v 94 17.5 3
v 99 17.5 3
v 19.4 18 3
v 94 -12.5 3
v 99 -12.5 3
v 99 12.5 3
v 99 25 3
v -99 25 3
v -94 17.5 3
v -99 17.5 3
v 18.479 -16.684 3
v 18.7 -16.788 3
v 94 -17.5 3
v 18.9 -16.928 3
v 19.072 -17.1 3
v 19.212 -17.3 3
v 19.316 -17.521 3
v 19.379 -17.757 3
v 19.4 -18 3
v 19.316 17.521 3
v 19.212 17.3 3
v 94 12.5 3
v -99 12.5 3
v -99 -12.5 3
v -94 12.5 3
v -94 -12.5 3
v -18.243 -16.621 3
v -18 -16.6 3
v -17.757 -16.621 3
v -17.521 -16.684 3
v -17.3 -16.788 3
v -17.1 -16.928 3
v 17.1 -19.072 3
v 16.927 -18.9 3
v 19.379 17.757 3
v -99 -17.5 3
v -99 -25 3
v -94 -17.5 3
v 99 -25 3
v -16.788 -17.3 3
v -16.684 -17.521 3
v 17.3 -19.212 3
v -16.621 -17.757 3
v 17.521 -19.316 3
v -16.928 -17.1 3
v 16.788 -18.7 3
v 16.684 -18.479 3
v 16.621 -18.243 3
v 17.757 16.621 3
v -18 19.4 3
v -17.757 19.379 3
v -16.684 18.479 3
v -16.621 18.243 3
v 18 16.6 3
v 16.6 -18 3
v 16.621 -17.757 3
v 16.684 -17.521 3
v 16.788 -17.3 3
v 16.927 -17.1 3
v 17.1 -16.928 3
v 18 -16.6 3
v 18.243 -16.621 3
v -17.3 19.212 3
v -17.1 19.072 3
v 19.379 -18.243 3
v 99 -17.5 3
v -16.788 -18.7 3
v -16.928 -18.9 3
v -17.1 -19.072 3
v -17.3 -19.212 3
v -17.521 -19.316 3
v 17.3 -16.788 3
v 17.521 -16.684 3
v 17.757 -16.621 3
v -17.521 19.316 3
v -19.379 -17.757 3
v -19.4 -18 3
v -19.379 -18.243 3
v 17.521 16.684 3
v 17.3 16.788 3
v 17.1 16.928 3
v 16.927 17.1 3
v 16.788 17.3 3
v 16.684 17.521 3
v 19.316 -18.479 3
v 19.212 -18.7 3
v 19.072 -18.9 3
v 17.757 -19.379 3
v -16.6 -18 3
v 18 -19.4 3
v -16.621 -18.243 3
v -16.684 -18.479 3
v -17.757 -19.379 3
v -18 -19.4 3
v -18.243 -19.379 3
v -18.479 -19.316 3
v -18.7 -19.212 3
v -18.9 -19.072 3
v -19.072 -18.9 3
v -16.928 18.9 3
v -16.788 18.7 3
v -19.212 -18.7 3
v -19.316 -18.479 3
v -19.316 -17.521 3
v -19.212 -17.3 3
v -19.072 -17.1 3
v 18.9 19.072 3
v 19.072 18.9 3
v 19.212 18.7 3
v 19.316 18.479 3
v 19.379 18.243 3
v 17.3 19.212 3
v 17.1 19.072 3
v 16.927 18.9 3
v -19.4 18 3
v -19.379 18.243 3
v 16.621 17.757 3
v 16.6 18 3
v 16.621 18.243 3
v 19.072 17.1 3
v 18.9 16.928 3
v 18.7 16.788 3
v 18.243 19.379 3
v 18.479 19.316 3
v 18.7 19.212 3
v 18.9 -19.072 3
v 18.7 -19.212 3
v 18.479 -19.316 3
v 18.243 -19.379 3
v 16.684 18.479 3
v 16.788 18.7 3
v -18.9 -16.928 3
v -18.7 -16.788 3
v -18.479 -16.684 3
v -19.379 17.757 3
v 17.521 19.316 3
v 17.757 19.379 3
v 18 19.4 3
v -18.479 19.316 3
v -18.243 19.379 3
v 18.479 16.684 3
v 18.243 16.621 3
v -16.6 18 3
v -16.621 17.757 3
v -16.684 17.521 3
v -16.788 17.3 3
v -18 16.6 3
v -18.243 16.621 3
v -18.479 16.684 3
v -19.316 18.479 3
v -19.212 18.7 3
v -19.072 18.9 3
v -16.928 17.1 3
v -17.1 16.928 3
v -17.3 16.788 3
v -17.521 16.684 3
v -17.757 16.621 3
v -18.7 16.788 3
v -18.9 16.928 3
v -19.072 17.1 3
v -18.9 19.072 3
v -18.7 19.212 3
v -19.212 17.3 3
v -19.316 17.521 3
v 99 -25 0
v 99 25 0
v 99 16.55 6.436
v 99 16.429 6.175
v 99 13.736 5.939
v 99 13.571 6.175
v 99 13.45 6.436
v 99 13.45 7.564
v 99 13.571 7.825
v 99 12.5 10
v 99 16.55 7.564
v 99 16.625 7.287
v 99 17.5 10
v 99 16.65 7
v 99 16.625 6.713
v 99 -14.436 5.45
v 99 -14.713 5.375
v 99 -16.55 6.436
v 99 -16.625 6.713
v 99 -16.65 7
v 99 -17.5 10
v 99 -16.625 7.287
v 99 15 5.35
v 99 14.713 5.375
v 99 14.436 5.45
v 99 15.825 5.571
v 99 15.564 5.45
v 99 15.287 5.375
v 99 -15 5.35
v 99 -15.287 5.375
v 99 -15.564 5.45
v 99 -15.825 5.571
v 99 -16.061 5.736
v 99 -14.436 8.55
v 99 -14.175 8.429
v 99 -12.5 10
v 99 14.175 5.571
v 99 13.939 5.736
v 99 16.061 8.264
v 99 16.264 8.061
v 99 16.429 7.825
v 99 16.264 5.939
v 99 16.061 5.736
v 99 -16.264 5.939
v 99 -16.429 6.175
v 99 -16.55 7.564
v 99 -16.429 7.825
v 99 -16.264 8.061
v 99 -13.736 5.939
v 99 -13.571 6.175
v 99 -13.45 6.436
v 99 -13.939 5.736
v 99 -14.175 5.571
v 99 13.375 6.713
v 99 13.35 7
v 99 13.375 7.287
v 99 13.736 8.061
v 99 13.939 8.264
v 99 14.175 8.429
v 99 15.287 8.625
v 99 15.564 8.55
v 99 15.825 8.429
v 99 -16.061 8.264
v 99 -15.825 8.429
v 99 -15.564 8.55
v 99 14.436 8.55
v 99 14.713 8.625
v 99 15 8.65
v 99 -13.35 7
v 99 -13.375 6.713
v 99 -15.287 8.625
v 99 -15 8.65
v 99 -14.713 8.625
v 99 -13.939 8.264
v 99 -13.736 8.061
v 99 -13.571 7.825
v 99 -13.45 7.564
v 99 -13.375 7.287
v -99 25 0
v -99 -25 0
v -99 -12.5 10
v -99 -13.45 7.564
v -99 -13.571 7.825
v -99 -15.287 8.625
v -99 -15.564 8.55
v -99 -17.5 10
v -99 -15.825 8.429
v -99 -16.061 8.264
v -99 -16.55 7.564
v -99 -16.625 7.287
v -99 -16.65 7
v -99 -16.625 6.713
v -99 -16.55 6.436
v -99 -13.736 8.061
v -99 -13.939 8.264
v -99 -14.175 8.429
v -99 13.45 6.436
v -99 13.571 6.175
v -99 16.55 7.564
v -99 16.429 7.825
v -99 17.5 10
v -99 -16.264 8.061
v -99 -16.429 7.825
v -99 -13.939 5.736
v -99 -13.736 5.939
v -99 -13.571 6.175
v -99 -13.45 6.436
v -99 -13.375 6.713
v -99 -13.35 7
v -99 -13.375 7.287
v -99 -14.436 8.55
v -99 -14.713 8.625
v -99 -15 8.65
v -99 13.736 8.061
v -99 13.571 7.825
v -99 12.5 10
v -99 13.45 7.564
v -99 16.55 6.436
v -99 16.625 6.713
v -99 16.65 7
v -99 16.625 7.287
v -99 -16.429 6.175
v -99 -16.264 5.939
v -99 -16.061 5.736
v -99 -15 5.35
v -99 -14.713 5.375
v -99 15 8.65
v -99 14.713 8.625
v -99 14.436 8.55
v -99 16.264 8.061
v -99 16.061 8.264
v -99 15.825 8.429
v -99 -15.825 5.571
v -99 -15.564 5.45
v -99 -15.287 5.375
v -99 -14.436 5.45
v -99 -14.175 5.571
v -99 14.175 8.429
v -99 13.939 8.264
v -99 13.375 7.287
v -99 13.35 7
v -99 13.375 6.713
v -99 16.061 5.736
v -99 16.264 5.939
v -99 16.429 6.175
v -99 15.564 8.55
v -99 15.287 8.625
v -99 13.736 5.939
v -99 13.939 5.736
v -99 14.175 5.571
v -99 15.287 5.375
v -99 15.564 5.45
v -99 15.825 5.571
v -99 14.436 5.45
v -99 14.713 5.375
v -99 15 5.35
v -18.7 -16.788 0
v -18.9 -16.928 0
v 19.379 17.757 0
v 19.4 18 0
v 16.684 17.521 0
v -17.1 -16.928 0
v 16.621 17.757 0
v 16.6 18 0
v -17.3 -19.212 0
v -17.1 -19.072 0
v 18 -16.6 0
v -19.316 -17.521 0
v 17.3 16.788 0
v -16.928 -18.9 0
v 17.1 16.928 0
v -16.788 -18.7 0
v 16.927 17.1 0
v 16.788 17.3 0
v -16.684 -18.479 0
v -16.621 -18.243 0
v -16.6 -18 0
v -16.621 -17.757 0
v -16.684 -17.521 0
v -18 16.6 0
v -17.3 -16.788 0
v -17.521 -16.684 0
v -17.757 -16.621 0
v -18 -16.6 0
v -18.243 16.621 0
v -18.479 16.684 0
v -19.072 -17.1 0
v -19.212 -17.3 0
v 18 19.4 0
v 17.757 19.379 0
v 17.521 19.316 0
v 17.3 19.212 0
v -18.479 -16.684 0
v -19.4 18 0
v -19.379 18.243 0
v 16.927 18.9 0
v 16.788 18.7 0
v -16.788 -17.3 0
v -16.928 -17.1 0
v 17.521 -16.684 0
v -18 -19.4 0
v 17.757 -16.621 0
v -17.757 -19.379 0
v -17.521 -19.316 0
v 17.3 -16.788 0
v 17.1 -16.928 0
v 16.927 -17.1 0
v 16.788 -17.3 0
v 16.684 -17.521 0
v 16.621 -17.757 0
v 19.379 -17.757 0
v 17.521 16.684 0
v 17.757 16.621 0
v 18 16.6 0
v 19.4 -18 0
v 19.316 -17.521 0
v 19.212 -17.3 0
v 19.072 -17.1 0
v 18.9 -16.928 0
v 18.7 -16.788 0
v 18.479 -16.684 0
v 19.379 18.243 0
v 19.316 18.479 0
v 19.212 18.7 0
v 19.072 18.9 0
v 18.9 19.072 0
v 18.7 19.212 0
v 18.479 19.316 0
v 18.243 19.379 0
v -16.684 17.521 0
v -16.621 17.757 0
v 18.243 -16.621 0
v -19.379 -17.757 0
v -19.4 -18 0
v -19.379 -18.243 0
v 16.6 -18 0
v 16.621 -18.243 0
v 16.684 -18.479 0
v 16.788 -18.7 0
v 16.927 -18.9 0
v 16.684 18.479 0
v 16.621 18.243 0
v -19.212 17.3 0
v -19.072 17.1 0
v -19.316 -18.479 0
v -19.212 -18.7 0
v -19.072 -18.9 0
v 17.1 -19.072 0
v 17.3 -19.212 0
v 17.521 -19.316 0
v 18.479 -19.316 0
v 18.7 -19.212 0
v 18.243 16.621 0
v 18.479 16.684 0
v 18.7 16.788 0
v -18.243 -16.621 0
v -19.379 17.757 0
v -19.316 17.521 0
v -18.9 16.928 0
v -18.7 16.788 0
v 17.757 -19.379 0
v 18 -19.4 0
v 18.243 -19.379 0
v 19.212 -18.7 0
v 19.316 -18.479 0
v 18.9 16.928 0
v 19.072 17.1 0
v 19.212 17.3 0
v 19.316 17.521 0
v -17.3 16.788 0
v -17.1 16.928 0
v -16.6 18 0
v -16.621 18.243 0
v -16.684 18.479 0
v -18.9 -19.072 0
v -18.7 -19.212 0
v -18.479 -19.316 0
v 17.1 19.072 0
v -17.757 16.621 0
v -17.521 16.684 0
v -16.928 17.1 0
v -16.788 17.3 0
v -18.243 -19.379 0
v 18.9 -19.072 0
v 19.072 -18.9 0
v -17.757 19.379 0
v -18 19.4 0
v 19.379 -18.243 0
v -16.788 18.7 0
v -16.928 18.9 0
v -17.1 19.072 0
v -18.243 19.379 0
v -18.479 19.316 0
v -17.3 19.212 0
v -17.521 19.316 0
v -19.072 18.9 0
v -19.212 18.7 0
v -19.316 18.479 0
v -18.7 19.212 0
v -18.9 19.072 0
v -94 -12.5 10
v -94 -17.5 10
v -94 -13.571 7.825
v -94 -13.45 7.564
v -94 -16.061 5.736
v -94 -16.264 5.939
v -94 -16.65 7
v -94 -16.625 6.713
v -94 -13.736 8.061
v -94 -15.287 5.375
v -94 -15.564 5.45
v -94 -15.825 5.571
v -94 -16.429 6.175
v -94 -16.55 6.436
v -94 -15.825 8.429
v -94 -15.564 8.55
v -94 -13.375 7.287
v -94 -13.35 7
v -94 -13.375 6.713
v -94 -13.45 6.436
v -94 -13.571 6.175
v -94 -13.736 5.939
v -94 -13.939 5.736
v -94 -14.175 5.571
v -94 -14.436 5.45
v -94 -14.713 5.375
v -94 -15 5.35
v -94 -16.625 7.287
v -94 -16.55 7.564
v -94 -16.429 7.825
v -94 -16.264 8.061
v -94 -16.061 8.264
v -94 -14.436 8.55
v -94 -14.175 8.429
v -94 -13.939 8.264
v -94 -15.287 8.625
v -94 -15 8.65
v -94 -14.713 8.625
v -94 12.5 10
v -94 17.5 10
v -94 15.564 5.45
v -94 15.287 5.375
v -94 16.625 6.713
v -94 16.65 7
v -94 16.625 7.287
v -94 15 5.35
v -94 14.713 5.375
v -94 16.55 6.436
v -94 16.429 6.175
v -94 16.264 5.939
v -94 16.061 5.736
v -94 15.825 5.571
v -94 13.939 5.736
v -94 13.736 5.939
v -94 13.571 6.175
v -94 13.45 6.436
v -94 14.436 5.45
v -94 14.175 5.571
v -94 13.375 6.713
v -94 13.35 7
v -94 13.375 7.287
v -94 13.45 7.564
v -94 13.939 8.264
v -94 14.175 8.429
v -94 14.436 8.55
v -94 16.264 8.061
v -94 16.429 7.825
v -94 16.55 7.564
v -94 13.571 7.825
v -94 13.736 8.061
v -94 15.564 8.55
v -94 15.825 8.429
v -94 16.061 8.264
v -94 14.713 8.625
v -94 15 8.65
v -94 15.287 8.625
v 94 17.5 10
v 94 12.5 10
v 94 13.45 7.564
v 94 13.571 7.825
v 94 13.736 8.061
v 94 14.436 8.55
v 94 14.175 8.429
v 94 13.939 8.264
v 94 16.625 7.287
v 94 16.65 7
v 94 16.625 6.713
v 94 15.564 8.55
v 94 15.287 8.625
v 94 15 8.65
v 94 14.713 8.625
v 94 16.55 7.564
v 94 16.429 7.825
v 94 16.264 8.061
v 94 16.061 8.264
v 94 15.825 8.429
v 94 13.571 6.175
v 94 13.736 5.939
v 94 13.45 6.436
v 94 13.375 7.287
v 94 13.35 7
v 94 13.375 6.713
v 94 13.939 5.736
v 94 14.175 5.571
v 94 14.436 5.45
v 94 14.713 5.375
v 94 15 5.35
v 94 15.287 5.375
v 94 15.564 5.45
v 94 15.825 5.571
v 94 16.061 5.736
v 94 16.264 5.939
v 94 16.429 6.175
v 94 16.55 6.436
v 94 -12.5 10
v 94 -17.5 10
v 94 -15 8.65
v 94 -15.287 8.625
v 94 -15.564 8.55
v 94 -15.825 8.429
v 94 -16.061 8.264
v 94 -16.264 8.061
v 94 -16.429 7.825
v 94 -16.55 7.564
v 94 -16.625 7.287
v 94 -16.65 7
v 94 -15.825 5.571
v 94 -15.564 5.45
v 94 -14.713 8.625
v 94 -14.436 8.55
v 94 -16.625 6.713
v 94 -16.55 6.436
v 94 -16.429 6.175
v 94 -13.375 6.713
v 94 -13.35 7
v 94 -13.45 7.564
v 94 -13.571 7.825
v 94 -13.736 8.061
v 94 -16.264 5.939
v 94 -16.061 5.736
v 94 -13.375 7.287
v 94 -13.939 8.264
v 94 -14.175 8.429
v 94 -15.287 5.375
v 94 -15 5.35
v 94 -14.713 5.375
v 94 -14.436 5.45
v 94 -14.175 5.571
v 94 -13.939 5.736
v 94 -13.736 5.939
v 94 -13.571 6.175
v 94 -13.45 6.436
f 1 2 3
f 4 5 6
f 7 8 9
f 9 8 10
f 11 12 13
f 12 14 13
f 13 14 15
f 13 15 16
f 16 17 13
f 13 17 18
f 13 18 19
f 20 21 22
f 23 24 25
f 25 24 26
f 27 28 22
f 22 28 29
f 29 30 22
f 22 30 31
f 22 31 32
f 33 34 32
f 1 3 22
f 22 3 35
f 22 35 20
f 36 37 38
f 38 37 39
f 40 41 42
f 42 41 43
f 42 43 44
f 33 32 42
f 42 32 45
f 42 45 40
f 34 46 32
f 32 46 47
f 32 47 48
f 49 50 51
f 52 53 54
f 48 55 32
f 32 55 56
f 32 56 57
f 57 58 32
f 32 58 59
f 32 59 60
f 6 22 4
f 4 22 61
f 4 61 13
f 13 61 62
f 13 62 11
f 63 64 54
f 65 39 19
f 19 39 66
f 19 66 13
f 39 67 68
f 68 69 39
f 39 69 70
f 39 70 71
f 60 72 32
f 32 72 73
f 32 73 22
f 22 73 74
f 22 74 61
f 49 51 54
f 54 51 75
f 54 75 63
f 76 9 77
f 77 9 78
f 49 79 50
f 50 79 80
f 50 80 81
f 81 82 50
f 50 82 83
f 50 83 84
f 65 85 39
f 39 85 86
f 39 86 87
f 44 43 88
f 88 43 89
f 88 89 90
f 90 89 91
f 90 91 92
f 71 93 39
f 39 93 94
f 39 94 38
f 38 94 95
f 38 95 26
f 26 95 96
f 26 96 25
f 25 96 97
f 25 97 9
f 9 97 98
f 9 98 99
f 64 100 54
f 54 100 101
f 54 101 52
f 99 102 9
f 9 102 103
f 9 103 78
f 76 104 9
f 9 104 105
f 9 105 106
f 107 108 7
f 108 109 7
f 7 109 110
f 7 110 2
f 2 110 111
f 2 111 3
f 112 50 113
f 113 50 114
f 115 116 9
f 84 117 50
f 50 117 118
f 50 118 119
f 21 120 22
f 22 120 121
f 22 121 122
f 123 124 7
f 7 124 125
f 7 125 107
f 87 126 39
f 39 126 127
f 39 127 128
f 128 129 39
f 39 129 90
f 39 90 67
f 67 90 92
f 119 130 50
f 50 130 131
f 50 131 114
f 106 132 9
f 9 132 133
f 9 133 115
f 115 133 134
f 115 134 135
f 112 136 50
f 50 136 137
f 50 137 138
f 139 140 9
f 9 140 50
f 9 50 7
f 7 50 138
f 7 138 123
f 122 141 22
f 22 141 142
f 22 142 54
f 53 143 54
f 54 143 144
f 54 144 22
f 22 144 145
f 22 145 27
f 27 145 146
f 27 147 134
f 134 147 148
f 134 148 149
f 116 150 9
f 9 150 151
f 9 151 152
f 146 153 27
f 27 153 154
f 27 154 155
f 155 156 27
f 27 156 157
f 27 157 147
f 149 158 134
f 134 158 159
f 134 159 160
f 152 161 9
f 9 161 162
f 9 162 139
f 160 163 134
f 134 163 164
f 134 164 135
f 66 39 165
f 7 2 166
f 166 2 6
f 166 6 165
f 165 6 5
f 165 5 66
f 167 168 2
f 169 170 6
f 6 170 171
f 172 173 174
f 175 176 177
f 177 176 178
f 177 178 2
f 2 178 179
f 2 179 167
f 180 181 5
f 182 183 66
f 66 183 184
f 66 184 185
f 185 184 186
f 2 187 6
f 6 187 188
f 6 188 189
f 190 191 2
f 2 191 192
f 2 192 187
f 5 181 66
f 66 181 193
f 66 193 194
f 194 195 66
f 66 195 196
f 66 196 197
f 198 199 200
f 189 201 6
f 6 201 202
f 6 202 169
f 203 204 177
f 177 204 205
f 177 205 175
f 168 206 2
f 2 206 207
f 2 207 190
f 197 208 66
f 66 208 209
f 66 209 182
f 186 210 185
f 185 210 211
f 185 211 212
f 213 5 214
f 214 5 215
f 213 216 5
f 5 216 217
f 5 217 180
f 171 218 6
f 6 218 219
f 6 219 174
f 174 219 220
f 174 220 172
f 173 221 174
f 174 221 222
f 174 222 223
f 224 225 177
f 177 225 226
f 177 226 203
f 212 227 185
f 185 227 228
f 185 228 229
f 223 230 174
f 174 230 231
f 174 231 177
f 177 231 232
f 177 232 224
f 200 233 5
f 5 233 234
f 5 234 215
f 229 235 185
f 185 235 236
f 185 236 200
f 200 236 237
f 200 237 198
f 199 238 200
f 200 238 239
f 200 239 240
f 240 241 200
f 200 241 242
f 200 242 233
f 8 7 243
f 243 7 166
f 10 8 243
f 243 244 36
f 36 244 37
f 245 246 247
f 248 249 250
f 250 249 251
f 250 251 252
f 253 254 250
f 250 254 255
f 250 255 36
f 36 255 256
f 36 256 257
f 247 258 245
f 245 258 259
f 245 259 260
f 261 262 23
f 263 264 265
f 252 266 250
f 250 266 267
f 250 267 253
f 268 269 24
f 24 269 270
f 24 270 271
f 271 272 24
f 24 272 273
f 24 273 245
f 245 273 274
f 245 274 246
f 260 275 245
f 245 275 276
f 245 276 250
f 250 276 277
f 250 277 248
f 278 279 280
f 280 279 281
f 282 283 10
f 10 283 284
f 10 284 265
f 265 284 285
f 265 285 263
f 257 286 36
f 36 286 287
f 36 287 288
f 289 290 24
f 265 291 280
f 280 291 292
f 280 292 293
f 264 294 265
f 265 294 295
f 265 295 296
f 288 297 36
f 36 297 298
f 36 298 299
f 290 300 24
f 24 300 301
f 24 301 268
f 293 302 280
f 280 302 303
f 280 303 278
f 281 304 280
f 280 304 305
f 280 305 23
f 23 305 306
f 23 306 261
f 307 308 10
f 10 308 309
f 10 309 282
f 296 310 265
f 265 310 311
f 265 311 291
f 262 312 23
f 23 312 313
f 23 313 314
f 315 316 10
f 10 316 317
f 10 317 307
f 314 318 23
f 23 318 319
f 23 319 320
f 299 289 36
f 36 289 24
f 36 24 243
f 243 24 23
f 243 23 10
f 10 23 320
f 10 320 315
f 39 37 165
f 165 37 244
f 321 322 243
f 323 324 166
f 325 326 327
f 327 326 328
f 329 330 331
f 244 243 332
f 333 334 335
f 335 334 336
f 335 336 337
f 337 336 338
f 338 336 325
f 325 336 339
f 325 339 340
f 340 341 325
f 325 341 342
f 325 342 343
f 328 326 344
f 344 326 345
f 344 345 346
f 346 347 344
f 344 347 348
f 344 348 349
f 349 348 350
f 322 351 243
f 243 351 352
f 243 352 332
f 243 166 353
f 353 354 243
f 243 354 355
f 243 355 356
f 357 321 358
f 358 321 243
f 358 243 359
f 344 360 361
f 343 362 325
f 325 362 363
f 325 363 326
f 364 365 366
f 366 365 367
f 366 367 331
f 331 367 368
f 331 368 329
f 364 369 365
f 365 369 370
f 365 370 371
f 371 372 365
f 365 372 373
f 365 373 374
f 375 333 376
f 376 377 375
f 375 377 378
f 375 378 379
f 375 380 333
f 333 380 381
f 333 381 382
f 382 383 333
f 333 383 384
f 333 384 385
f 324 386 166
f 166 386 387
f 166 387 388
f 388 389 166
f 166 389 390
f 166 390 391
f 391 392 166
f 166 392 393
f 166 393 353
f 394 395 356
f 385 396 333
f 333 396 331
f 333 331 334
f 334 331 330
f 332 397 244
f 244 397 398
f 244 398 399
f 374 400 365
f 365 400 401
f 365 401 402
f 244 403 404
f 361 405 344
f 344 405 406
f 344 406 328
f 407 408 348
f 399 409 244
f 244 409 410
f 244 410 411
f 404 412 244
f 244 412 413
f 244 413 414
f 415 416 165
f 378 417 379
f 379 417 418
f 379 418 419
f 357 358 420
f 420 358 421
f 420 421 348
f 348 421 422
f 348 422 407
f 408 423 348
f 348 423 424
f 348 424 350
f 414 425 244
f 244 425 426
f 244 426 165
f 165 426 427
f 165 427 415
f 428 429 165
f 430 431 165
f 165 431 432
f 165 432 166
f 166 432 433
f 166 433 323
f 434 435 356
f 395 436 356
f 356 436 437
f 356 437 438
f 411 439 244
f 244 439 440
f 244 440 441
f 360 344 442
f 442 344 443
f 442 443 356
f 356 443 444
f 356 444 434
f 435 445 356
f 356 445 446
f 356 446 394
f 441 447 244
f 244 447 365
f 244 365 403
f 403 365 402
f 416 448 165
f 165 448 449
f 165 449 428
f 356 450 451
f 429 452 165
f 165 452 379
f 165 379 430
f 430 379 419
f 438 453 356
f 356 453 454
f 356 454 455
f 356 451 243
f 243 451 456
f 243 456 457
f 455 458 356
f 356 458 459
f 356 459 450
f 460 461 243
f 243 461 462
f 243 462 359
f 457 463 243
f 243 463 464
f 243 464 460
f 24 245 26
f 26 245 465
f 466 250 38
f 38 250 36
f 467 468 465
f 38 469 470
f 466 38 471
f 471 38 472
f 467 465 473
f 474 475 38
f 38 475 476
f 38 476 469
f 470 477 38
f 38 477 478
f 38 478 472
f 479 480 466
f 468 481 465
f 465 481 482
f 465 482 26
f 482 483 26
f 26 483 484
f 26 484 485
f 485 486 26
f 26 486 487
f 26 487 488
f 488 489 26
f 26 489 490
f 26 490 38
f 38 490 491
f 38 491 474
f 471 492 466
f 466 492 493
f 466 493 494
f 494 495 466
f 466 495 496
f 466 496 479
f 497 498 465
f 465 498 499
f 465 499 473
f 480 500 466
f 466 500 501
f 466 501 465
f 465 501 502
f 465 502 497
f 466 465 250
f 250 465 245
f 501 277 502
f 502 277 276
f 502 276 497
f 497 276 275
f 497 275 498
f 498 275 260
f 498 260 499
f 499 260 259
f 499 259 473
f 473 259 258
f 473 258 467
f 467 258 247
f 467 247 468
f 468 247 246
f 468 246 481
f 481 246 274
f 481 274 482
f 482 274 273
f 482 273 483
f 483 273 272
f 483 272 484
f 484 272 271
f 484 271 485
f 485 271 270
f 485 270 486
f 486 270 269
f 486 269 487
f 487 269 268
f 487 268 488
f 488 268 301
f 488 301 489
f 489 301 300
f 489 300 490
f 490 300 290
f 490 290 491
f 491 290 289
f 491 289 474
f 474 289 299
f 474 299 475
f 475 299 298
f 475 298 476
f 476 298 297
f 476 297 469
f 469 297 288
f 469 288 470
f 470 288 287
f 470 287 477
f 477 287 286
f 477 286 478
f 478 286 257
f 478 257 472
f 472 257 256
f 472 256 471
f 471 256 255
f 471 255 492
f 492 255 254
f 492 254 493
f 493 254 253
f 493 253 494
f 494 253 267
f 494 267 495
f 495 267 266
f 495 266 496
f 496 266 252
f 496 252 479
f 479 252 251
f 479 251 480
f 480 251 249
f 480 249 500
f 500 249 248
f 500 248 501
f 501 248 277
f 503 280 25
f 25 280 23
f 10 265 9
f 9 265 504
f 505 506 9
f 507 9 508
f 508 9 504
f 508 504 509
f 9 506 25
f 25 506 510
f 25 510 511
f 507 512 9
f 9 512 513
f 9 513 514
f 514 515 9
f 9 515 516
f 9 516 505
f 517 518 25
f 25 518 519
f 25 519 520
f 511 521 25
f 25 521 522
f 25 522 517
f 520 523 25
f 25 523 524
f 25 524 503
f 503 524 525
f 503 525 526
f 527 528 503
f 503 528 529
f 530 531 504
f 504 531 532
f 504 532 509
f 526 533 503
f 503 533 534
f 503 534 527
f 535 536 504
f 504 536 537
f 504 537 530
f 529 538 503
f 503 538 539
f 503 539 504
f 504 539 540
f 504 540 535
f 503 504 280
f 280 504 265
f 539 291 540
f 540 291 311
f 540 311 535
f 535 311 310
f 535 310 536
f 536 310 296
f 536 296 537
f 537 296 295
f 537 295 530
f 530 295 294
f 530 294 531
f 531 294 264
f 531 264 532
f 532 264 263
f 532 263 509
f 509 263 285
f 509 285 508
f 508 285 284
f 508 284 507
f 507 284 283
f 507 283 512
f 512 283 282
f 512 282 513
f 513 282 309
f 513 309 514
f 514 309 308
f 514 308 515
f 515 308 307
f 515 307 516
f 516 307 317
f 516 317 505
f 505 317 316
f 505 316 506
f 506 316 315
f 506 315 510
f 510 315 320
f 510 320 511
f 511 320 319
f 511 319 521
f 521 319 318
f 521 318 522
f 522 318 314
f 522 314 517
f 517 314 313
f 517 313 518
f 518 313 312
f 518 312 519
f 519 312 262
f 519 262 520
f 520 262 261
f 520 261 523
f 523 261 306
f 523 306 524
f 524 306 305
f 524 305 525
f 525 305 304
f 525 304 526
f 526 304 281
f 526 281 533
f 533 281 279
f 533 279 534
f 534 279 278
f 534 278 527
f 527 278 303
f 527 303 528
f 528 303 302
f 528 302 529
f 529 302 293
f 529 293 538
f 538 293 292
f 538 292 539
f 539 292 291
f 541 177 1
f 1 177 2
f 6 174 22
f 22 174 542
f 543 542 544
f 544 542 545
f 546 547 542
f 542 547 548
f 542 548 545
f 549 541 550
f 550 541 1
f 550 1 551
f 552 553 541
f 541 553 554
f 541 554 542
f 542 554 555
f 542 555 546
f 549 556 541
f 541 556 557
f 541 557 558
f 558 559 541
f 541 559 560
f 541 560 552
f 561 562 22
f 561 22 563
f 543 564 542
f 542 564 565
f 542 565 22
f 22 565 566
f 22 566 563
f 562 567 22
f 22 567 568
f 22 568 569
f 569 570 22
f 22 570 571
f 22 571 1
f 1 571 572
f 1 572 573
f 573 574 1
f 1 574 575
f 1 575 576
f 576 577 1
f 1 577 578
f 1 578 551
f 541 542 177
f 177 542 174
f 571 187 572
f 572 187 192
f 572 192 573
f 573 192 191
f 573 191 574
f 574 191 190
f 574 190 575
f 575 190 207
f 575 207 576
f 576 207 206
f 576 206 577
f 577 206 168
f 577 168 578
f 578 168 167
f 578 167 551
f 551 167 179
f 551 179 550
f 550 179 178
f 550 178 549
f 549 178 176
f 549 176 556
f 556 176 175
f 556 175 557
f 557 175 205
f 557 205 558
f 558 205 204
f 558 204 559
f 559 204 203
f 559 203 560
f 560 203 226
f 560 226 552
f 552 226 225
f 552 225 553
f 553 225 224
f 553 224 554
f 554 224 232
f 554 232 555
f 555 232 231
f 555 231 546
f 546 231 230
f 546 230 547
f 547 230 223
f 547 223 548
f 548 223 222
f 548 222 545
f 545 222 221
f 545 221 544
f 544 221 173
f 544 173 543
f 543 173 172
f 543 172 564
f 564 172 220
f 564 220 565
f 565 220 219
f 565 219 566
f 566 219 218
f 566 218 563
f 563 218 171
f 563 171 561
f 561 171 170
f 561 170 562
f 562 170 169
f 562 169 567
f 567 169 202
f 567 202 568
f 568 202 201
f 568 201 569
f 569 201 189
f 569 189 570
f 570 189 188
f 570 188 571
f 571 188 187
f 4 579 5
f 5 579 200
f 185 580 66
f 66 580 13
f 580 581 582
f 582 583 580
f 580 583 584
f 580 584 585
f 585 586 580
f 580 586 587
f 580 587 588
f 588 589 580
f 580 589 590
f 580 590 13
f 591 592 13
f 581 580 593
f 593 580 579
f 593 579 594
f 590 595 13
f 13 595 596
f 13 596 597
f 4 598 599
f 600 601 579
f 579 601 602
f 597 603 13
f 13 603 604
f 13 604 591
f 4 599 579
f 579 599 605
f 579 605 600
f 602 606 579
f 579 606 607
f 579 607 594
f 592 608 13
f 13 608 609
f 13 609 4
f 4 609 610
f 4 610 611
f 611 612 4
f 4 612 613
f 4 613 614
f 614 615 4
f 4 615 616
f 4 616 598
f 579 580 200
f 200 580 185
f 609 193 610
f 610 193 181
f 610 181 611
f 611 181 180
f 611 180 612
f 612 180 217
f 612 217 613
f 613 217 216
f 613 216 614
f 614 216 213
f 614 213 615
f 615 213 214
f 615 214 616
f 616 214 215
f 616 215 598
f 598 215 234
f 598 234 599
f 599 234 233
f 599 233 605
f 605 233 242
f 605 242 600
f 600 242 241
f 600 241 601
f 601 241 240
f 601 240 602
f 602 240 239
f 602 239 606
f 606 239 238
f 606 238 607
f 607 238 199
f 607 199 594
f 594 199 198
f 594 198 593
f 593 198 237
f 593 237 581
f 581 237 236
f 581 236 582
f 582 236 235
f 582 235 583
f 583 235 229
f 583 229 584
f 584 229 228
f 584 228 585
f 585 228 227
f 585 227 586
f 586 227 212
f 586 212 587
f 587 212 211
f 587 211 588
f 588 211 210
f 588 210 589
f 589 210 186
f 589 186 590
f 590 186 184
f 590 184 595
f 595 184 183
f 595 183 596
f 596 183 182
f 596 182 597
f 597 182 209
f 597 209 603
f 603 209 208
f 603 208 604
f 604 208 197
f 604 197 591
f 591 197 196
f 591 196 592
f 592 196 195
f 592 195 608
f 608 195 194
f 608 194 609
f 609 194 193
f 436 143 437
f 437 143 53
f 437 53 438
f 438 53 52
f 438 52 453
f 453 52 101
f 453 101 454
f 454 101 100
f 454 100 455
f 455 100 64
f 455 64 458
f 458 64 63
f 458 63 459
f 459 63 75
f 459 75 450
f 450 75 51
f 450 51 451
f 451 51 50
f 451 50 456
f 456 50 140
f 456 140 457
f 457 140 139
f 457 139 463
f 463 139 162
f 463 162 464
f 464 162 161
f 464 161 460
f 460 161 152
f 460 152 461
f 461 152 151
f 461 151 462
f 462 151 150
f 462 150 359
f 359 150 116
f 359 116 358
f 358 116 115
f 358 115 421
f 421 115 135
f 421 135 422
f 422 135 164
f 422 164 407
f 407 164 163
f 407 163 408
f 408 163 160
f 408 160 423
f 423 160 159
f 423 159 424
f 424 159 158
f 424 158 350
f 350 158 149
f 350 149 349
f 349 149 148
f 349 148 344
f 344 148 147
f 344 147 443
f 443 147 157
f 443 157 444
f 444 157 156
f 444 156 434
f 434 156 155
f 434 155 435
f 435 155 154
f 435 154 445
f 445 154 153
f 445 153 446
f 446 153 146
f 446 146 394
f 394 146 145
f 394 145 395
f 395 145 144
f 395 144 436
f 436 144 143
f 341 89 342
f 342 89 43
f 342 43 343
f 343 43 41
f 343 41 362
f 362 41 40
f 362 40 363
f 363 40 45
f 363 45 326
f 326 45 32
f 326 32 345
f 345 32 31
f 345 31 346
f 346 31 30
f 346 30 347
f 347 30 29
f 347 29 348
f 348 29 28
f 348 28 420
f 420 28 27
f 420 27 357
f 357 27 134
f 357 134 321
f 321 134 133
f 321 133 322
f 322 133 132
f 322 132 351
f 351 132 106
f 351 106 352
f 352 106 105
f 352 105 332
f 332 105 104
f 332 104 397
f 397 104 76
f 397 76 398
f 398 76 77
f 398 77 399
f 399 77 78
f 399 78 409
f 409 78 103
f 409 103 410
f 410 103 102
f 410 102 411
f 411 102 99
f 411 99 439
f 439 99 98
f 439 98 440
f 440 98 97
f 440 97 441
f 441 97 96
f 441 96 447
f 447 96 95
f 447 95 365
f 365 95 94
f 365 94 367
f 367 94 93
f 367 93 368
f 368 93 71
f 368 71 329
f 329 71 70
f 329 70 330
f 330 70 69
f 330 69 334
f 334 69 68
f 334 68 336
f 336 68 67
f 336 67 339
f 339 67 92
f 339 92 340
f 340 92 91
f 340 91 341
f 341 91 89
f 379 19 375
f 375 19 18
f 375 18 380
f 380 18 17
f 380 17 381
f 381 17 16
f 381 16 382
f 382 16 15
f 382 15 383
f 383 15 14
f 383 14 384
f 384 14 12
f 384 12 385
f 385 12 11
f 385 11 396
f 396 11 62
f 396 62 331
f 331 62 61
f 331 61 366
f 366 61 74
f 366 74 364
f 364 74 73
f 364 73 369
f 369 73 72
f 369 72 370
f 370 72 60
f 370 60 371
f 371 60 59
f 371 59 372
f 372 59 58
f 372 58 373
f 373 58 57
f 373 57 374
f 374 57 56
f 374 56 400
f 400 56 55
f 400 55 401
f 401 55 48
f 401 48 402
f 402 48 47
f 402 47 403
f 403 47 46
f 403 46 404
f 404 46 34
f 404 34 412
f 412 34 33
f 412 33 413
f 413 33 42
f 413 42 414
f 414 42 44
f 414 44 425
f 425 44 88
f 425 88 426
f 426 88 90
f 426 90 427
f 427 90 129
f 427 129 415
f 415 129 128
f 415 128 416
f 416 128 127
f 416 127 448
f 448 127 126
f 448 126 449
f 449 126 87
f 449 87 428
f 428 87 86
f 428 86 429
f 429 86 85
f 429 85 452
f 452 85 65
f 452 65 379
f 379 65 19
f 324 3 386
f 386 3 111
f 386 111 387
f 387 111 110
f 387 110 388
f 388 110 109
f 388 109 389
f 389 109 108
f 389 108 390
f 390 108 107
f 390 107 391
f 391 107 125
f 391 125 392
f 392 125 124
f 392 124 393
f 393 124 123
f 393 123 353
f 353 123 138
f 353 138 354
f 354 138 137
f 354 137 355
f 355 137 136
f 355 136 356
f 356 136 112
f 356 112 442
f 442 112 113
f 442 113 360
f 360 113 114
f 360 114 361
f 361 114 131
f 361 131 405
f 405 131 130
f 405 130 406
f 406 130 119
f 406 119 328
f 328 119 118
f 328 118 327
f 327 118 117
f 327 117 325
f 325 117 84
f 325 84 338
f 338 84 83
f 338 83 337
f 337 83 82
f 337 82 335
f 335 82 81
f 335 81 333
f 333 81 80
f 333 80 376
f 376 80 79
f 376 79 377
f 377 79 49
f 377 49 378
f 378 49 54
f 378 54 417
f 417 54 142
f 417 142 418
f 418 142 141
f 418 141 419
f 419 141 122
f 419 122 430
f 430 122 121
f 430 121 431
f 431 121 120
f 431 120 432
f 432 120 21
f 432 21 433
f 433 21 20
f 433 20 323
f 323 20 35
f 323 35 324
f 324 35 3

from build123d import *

# Parameters (mm, degrees)
SKETCH_1_W          = 198
SKETCH_1_H          = 50
EXTRUDE_1_DEPTH     = 3
SKETCH_4_W          = 10
SKETCH_4_H          = 5
SKETCH_4_R          = 1.65
EXTRUDE_2_DEPTH     = 5
SKETCH_5_W          = 10
SKETCH_5_H          = 5
SKETCH_5_R          = 1.65
EXTRUDE_3_DEPTH     = 5
SKETCH_6_R          = 1.4
CUT_EXTRUDE_3_DEPTH = 3


with BuildPart() as part:
    # 草图1 → 凸台-拉伸1 (new body)
    with BuildSketch(Plane.XY):
        Rectangle(SKETCH_1_W, SKETCH_1_H)
    extrude(amount=EXTRUDE_1_DEPTH)

    # 草图4 → 凸台-拉伸2 (add)
    with BuildSketch(Plane.ZY.offset(99)):
        with Locations((5, 15)):
            Rectangle(SKETCH_4_W, SKETCH_4_H)
        with Locations((7, 15)):
            Circle(SKETCH_4_R, mode=Mode.SUBTRACT)
        with Locations((5, -15)):
            Rectangle(SKETCH_4_W, SKETCH_4_H)
        with Locations((7, -15)):
            Circle(SKETCH_4_R, mode=Mode.SUBTRACT)
    extrude(amount=-EXTRUDE_2_DEPTH)

    # 草图5 → 凸台-拉伸3 (add)
    with BuildSketch(Plane(origin=(99, 0, 0), x_dir=(0, 0, -1), z_dir=(1, 0, 0))):
        with Locations((-5, 15)):
            Rectangle(SKETCH_5_W, SKETCH_5_H)
        with Locations((-7, 15)):
            Circle(SKETCH_5_R, mode=Mode.SUBTRACT)
        with Locations((-5, -15)):
            Rectangle(SKETCH_5_W, SKETCH_5_H)
        with Locations((-7, -15)):
            Circle(SKETCH_5_R, mode=Mode.SUBTRACT)
    extrude(amount=-EXTRUDE_3_DEPTH)

    # 草图6 → 切除-拉伸3 (cut)
    with BuildSketch(Plane.XY.offset(3)):
        with Locations((-18, 18)):
            Circle(SKETCH_6_R)
        with Locations((18, 18)):
            Circle(SKETCH_6_R)
        with Locations((18, -18)):
            Circle(SKETCH_6_R)
        with Locations((-18, -18)):
            Circle(SKETCH_6_R)
    extrude(amount=-CUT_EXTRUDE_3_DEPTH, mode=Mode.SUBTRACT)


solid = part.part
